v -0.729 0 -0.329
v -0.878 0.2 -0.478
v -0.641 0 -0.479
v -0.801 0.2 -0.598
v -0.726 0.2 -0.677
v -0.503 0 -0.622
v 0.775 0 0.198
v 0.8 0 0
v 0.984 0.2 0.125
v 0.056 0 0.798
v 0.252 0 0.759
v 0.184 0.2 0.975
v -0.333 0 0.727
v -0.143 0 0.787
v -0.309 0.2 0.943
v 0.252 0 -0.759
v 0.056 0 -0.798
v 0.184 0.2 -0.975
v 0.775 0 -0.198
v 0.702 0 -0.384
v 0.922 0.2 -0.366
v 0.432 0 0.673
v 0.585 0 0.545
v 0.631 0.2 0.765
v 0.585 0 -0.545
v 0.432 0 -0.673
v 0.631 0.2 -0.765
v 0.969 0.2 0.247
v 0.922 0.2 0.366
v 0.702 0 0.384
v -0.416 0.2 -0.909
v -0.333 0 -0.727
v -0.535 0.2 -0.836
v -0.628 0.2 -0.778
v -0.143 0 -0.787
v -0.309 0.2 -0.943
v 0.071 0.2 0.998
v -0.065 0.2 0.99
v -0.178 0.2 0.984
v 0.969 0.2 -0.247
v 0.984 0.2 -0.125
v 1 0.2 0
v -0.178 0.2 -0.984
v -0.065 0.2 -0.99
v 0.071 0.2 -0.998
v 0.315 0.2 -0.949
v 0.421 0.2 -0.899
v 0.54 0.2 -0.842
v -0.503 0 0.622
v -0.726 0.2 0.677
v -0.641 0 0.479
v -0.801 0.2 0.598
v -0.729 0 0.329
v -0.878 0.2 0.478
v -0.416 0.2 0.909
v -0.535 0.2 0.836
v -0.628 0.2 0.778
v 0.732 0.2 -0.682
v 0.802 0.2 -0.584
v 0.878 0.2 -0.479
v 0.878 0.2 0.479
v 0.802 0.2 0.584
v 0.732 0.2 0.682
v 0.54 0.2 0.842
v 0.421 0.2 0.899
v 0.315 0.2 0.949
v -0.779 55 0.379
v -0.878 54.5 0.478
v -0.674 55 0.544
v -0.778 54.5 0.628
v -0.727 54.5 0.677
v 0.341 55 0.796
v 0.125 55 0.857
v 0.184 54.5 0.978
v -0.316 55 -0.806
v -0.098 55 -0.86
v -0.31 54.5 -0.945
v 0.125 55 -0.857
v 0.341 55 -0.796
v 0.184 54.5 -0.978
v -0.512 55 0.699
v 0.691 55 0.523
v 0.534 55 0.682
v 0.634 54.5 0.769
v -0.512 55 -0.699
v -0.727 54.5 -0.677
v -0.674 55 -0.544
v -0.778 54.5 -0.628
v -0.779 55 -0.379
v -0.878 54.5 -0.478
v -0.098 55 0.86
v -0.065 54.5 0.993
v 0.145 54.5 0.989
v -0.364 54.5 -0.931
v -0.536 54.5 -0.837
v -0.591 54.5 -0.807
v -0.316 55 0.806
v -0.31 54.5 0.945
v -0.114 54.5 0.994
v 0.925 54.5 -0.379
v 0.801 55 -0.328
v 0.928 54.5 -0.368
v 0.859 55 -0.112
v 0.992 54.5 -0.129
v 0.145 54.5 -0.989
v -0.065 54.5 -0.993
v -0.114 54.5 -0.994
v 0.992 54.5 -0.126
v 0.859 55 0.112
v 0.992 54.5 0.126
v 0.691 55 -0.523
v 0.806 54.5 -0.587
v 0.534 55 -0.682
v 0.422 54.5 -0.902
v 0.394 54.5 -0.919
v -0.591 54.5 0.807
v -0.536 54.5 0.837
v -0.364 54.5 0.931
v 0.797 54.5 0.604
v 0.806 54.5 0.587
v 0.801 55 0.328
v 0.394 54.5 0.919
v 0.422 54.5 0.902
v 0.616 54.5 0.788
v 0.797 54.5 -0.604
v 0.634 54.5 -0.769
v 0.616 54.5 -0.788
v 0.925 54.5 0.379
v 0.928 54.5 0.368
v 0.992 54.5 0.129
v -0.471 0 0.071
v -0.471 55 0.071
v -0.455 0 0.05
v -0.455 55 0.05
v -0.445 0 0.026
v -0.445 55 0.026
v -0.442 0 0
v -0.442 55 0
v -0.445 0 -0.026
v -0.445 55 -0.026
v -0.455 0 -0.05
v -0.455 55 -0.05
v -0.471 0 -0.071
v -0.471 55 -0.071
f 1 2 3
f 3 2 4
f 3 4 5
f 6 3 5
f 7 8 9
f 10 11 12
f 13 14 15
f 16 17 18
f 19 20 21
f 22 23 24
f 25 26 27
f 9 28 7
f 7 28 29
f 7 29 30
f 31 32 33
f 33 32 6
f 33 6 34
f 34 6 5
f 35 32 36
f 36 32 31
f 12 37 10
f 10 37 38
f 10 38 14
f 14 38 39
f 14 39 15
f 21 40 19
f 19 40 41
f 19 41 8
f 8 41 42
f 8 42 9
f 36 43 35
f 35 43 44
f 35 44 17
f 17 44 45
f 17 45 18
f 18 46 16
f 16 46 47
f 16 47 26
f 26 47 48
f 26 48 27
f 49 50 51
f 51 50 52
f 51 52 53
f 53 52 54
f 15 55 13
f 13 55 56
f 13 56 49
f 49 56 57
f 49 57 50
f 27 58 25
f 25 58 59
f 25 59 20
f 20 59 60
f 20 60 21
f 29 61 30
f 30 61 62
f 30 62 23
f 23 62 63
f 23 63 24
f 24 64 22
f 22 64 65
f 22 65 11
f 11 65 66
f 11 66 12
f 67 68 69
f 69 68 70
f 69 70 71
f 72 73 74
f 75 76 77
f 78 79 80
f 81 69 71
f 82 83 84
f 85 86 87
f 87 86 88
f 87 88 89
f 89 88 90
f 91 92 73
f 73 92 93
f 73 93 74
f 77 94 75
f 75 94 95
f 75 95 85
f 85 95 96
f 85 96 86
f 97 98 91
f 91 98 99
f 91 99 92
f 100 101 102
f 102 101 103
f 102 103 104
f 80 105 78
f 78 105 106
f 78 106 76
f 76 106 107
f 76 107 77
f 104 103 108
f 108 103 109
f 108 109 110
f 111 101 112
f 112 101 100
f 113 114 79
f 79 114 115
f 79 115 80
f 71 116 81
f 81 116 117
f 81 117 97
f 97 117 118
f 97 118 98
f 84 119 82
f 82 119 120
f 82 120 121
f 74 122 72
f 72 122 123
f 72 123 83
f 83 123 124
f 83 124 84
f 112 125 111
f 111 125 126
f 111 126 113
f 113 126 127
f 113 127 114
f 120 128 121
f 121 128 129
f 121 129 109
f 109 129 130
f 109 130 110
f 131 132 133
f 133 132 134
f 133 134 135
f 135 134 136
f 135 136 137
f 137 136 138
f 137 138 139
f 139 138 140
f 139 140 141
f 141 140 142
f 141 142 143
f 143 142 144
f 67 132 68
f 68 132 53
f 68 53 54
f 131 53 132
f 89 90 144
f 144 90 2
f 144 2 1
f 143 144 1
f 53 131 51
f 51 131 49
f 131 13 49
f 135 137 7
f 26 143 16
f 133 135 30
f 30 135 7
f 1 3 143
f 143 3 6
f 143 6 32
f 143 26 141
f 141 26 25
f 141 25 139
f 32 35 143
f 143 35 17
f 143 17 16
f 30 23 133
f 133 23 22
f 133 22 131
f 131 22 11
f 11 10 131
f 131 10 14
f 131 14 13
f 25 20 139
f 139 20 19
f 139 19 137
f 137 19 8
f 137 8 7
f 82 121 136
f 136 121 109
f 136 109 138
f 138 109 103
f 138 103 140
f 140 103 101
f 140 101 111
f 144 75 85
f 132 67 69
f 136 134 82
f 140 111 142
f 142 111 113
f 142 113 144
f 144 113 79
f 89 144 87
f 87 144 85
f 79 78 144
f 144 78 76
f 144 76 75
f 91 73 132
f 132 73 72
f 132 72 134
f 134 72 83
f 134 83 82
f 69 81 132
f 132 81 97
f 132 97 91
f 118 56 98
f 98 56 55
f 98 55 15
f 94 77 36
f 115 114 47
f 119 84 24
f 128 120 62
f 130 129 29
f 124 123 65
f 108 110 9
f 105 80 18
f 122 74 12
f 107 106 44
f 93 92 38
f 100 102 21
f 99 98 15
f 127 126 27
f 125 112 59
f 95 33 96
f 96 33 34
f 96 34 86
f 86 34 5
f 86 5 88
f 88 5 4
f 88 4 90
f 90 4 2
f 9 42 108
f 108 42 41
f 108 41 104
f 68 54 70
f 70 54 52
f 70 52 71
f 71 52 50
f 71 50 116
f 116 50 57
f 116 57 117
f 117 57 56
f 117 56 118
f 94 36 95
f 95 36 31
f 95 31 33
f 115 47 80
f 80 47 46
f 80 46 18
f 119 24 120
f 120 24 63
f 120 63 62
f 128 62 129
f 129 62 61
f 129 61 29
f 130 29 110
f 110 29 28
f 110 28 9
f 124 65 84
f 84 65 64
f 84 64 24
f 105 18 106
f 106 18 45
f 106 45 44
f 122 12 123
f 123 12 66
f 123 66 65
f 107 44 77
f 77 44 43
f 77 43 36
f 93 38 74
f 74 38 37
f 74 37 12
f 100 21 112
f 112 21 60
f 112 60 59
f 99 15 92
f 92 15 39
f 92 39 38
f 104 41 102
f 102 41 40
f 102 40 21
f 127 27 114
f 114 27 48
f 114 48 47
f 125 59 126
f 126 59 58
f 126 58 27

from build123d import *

# Parameters (mm, degrees)
SKETCH1_R           = 1
BOSS_EXTRUDE1_DEPTH = 55
CUT_EXTRUDE1_DEPTH  = 56
FILLET1_R           = 0.1
CHAMFER1_SIZE       = 0.5
CHAMFER1_SIZE2      = 0.133974596
CHAMFER2_SIZE       = 0.2


with BuildPart() as part:
    # Sketch1 → Boss-Extrude1 (new body)
    with BuildSketch(Plane(origin=(0, 0, 0), x_dir=(1, 0, 0), z_dir=(0, 1, 0))):
        Circle(SKETCH1_R)
    extrude(amount=BOSS_EXTRUDE1_DEPTH)

    # Sketch2 → Cut-Extrude1 (cut, through all)
    with BuildSketch(Plane(origin=(0, 55, 0), x_dir=(1, 0, 0), z_dir=(0, 1, 0))):
        with BuildLine():
            Line((-0.878280893, 0.478145033), (-0.40013586, 0))
            Line((-0.40013586, 0), (-0.878280893, -0.478145033))
            ThreePointArc((-0.878280893, -0.478145033), (-1, 0), (-0.878280893, 0.478145033))
        make_face()
    extrude(amount=-CUT_EXTRUDE1_DEPTH, mode=Mode.SUBTRACT)

    # Fillet1
    fillet1_edges = [part.edges().sort_by_distance(p)[0] for p in [
        (-0.40013586, 27.5, 0),
    ]]
    fillet(fillet1_edges, radius=FILLET1_R)

    # Chamfer1
    chamfer1_edges = [part.edges().sort_by_distance(p)[0] for p in [
        (1, 55, 0),
    ]]
    chamfer1_side = [part.faces().sort_by_distance(p)[0] for p in [
        (1, 27.5, 0),
    ]]
    chamfer(chamfer1_edges, length=CHAMFER1_SIZE, length2=CHAMFER1_SIZE2, reference=chamfer1_side[0])

    # Chamfer2
    chamfer2_edges = [part.edges().sort_by_distance(p)[0] for p in [
        (1, 0, 0),
    ]]
    chamfer(chamfer2_edges, length=CHAMFER2_SIZE)


solid = part.part
